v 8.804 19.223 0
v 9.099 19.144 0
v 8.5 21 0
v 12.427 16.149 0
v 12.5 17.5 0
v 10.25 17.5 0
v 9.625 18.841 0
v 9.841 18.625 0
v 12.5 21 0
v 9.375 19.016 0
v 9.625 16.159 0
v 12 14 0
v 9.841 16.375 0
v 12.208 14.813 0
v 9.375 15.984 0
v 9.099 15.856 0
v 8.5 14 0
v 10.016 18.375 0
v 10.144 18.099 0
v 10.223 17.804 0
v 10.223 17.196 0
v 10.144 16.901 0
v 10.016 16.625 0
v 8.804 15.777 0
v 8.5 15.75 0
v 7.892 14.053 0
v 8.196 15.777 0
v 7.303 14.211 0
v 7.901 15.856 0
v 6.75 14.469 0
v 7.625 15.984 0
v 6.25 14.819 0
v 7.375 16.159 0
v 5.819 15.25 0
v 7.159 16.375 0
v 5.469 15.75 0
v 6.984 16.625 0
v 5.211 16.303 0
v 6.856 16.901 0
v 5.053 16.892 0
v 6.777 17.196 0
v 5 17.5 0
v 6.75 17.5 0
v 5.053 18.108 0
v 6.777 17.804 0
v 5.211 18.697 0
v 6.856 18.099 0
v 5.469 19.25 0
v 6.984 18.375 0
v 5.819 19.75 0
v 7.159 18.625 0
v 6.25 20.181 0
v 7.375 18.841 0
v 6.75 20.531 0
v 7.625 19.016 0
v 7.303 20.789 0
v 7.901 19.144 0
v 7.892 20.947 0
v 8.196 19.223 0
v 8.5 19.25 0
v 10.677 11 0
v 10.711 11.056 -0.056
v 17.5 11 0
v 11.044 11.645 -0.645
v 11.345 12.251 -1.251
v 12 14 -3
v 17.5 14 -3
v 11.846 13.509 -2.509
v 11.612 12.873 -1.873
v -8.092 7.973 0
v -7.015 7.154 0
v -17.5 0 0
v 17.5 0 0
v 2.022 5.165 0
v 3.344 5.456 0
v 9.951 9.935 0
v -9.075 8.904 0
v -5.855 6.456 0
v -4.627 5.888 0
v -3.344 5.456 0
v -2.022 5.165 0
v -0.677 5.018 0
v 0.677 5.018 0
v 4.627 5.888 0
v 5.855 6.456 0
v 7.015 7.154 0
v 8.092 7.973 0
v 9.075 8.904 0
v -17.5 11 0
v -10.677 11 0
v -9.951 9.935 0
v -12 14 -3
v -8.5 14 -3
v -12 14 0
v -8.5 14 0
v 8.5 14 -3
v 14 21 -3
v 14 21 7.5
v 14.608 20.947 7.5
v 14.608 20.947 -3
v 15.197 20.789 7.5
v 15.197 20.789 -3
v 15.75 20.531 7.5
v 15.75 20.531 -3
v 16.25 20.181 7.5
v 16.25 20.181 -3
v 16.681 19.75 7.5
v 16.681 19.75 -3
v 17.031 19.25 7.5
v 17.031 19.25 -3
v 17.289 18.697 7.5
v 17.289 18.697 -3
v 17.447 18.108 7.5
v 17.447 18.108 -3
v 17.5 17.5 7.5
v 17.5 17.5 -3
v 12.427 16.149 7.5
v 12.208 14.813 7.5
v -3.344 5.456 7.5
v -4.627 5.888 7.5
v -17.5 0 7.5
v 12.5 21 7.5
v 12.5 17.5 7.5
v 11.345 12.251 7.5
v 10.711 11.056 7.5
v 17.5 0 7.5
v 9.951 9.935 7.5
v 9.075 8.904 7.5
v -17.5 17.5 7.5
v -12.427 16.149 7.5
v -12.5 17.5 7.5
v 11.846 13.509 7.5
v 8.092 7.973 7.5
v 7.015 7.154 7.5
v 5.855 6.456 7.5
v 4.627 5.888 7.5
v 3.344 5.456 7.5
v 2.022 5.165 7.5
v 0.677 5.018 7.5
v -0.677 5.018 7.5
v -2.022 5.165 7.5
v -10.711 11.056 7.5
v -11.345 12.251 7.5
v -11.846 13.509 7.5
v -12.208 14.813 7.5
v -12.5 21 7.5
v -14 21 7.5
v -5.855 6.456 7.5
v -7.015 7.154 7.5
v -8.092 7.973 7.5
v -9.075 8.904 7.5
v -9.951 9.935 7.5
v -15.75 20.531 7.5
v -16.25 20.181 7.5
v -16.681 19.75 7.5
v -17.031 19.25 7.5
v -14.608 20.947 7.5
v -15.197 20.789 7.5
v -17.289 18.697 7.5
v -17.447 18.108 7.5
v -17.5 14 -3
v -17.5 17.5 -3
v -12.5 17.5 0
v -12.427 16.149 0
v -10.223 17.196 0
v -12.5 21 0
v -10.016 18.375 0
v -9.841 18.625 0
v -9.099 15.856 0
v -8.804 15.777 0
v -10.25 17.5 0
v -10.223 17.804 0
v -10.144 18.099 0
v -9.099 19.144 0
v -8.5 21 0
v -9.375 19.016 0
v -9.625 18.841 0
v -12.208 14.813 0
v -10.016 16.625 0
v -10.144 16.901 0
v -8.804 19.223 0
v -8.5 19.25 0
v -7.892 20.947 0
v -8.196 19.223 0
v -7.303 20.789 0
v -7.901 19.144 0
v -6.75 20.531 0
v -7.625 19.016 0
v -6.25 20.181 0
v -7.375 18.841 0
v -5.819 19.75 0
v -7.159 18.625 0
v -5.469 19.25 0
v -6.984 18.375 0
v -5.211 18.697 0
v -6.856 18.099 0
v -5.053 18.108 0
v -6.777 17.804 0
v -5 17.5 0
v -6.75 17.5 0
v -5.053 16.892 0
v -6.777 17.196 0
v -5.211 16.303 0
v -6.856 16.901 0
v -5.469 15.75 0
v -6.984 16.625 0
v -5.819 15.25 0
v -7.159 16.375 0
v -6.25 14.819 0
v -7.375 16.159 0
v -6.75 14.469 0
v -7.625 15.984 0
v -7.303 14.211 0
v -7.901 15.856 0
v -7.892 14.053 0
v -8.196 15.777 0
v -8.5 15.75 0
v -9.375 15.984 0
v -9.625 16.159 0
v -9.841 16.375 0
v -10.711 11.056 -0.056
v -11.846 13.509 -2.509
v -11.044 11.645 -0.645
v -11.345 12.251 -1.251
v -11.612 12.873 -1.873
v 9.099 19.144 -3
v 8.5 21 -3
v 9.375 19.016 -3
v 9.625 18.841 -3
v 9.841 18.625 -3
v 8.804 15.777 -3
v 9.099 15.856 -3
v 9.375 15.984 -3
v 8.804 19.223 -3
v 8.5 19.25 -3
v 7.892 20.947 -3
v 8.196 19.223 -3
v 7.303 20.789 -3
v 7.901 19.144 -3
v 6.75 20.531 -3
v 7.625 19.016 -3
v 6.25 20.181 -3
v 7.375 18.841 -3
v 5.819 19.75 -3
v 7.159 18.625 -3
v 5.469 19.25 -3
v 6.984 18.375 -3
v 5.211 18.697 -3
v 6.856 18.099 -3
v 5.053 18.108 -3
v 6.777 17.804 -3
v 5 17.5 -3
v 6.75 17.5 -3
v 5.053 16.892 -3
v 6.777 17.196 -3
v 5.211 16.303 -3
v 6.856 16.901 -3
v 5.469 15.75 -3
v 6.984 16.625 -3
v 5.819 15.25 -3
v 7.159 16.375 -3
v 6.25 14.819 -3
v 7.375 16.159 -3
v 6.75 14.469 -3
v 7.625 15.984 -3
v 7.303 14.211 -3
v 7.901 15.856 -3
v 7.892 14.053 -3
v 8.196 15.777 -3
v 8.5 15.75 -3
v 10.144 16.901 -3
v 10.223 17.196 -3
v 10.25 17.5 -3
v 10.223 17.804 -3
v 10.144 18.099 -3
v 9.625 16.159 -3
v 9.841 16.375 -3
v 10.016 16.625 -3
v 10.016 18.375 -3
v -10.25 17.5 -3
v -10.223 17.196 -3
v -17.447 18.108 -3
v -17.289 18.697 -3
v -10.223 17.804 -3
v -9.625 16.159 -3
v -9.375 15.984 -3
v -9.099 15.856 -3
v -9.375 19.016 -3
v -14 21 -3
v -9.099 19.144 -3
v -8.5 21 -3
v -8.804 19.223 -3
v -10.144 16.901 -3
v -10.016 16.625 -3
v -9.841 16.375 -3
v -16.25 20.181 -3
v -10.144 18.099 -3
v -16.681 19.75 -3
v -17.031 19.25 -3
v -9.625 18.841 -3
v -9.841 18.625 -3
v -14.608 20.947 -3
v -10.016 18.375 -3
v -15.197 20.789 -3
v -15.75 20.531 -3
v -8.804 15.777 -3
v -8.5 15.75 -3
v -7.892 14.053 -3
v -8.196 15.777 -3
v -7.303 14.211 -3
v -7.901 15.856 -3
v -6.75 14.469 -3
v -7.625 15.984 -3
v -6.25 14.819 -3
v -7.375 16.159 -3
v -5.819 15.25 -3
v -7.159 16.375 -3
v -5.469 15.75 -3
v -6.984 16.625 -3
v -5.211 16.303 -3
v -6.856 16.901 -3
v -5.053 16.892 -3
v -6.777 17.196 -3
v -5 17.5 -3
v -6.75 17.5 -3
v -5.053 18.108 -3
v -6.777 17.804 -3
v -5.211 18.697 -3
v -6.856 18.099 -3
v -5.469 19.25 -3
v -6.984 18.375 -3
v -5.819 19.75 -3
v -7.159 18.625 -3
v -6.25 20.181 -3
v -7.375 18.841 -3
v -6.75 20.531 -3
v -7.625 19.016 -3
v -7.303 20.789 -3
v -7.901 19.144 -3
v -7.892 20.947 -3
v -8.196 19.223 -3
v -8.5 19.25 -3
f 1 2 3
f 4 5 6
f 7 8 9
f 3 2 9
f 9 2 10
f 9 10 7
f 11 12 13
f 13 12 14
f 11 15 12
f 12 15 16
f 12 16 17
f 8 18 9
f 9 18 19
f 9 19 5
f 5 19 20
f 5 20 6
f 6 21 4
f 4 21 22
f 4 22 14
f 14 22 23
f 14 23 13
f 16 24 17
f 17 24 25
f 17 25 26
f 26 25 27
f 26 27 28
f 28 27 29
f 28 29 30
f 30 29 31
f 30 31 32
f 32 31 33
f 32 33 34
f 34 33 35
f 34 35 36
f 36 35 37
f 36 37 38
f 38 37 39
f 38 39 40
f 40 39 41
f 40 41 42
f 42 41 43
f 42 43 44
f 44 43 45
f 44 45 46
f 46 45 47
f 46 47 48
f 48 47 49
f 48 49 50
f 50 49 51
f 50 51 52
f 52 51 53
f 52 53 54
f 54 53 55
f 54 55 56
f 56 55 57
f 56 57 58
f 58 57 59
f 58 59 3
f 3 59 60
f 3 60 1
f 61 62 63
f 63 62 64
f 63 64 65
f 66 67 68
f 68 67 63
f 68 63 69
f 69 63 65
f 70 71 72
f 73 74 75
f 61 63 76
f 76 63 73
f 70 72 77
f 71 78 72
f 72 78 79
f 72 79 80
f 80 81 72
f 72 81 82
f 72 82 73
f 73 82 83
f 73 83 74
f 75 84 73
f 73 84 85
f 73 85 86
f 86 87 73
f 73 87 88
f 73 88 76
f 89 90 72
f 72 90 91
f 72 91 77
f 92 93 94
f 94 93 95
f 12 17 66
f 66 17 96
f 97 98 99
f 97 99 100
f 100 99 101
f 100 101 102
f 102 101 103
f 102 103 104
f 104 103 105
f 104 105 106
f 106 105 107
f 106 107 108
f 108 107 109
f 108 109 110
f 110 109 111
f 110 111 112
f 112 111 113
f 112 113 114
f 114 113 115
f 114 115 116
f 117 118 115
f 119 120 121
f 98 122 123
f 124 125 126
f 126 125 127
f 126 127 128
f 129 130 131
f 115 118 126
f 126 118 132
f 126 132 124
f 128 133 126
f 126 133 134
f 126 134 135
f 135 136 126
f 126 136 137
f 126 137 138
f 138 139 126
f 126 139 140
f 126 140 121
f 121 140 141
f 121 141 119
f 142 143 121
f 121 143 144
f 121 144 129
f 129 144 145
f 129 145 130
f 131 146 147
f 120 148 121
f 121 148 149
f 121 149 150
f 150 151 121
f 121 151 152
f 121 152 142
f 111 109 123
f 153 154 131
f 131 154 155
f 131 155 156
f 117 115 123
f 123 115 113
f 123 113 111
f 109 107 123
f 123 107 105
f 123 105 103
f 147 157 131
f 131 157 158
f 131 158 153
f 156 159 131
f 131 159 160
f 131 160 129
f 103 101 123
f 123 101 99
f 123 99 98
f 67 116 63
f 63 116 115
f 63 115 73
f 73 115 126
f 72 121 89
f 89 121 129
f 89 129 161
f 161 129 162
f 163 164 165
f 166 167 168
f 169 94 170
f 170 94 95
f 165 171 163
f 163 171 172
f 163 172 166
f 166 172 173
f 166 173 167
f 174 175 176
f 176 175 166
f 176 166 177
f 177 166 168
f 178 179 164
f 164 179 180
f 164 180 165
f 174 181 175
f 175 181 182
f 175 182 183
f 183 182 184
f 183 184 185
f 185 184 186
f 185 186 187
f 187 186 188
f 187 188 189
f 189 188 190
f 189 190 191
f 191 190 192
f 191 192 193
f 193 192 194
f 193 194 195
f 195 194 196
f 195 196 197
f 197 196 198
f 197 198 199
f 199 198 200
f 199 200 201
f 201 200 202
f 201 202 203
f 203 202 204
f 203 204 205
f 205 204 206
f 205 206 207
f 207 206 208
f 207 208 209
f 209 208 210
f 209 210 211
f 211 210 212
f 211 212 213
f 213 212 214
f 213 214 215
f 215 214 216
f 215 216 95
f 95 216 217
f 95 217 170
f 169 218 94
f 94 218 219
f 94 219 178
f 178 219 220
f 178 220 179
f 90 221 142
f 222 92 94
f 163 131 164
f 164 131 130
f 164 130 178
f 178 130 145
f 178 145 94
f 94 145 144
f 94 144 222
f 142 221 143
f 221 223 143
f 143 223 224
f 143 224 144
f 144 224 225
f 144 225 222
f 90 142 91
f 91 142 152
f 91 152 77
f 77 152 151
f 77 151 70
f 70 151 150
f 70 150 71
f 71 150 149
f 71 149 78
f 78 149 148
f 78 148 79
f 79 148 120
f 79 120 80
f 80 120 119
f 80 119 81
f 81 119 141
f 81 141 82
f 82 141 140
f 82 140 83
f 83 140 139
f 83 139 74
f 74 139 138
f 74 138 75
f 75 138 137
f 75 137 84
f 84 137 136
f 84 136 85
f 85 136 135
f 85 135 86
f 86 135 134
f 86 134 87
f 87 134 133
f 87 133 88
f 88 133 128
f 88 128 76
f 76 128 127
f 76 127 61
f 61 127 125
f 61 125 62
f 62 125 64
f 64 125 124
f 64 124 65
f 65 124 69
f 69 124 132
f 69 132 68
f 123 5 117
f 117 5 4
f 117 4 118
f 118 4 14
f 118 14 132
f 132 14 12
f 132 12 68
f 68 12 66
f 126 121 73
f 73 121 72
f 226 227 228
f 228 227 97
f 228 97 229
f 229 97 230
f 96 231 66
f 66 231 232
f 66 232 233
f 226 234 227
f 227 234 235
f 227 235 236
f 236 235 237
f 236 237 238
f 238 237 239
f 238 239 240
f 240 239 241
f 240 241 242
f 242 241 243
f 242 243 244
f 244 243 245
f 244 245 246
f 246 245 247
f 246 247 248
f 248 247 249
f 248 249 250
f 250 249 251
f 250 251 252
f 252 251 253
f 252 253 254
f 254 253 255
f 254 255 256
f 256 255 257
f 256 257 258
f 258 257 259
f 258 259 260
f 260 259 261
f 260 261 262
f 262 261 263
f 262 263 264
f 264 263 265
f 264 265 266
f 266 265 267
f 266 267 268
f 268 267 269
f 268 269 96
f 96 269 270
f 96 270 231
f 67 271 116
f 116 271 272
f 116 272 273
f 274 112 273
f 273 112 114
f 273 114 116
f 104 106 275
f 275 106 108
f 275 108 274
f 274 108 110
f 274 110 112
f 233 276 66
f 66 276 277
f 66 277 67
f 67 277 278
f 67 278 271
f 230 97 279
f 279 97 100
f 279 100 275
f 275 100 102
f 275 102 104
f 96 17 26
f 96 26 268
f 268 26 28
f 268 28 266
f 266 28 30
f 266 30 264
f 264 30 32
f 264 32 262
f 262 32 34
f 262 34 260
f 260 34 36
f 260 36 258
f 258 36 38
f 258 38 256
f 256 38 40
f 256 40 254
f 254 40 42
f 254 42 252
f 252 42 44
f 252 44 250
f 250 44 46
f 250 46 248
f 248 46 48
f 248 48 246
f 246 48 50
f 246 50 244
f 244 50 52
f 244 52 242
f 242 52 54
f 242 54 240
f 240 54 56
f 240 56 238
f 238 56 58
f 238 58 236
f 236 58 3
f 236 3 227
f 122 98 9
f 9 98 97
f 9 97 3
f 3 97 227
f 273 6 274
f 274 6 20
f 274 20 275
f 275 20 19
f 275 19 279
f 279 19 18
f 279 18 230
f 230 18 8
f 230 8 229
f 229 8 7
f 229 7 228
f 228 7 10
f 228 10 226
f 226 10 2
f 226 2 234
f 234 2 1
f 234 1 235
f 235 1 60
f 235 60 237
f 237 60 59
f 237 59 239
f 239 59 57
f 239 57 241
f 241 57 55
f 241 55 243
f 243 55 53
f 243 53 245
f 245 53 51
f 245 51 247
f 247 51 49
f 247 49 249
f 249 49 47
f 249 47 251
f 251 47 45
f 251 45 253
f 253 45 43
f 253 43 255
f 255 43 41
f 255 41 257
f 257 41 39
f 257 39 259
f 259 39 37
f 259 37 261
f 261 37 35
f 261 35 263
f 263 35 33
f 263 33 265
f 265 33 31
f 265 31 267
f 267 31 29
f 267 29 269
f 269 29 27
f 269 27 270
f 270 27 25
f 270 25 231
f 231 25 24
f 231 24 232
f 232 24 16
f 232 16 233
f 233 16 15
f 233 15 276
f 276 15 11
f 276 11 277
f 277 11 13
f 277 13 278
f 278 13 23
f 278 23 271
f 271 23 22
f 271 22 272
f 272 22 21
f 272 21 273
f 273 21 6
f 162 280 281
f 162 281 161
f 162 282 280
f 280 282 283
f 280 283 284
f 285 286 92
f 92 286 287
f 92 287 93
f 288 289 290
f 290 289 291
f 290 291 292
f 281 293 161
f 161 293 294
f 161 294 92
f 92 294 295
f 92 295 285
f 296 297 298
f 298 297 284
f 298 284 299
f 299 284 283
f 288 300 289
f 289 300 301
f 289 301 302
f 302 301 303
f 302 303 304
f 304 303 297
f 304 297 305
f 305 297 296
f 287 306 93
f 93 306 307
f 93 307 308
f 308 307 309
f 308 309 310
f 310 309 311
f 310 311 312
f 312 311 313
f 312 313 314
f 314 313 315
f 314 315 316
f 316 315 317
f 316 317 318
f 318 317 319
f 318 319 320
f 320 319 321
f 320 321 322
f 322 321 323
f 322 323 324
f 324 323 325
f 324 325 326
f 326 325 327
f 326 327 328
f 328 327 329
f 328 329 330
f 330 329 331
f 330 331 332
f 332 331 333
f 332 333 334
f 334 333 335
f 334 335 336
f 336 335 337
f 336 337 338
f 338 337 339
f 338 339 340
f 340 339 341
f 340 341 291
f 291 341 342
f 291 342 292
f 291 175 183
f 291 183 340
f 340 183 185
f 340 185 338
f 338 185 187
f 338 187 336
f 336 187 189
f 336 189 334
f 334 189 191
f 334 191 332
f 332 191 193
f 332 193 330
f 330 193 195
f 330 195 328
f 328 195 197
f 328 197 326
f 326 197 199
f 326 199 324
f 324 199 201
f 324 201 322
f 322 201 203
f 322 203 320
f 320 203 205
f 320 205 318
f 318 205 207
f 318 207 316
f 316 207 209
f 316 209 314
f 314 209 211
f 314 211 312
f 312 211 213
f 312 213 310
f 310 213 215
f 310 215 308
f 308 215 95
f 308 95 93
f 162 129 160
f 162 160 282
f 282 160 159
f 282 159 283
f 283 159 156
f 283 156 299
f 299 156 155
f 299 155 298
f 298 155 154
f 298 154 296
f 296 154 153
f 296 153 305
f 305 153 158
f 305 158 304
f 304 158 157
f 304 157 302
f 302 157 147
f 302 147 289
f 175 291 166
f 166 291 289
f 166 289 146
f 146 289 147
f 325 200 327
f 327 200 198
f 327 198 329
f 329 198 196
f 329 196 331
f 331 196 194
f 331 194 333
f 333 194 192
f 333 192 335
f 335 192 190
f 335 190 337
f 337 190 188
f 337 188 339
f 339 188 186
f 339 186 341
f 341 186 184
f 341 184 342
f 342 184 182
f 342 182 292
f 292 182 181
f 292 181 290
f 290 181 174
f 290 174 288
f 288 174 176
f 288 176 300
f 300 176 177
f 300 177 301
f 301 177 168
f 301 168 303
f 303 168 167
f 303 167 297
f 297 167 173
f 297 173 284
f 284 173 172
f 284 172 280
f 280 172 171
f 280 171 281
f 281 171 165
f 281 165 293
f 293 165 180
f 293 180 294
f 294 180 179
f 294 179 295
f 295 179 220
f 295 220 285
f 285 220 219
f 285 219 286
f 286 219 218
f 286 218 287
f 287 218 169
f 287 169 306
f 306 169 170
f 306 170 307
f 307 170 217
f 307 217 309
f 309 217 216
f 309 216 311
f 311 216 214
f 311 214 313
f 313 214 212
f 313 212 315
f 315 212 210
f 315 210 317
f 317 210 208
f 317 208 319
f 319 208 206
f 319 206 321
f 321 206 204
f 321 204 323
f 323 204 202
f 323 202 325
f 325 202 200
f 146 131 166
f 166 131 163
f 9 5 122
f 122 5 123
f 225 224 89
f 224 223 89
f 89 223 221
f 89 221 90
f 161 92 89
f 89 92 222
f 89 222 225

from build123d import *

# Parameters (mm, degrees)
BOSS_EXTRUDE1_DEPTH = 7.5
SKETCH2_R           = 1.75
BOSS_EXTRUDE2_DEPTH = 3
SKETCH3_W           = 5
SKETCH3_H           = 7.5
BOSS_EXTRUDE3_DEPTH = 3.5
CUT_EXTRUDE1_DEPTH  = 29.346075566
BOSS_EXTRUDE4_DEPTH = 3
RIB1_REACH          = 43.5
SKETCH7_WALL_W      = 89.242640688
SKETCH7_WALL_H      = 5.25255129
BOSS_EXTRUDE5_DEPTH = 2
CUT_EXTRUDE2_DEPTH  = 29.346075566


with BuildPart() as part:
    # Sketch1 → Boss-Extrude1 (new body)
    with BuildSketch(Plane.XY):
        with BuildLine():
            Line((-17.5, 0), (17.5, 0))
            Line((17.5, 0), (17.5, 17.5))
            Line((17.5, 17.5), (12.5, 17.5))
            ThreePointArc((12.5, 17.5), (0, 5), (-12.5, 17.5))
            Line((-12.5, 17.5), (-17.5, 17.5))
            Line((-17.5, 17.5), (-17.5, 0))
        make_face()
    extrude(amount=BOSS_EXTRUDE1_DEPTH)

    # Sketch2 → Boss-Extrude2 (add)
    # profile 1 of 2: a face of its own
    with BuildSketch(Plane(origin=(0, 0, 0), x_dir=(-1, 0, 0), z_dir=(0, 0, -1))):
        with BuildLine():
            Line((-8.5, 14), (-14, 14))
            ThreePointArc((-14, 14), (-17.5, 17.5), (-14, 21))
            Line((-14, 21), (-8.5, 21))
            ThreePointArc((-8.5, 21), (-5, 17.5), (-8.5, 14))
        make_face()
        with Locations((-8.5, 17.5)):
            Circle(SKETCH2_R, mode=Mode.SUBTRACT)
    # profile 2 of 2: a face of its own
    with BuildSketch(Plane(origin=(0, 0, 0), x_dir=(-1, 0, 0), z_dir=(0, 0, -1))):
        with BuildLine():
            Line((8.5, 14), (14, 14))
            ThreePointArc((14, 14), (17.5, 17.5), (14, 21))
            Line((14, 21), (8.5, 21))
            ThreePointArc((8.5, 21), (5, 17.5), (8.5, 14))
        make_face()
        with Locations(Location((8.5, 17.5, 0), (0, 0, 180))):
            Circle(SKETCH2_R, mode=Mode.SUBTRACT)
    extrude(amount=BOSS_EXTRUDE2_DEPTH)

    # Sketch3 → Boss-Extrude3 (add)
    with BuildSketch(Plane(origin=(0, 17.5, 0), x_dir=(1, 0, 0), z_dir=(0, 1, 0))):
        with Locations((15, -3.75)):
            Rectangle(SKETCH3_W, SKETCH3_H)
        with Locations((-15, -3.75)):
            Rectangle(SKETCH3_W, SKETCH3_H)
    extrude(amount=BOSS_EXTRUDE3_DEPTH)

    # Sketch4 → Cut-Extrude1 (cut, through all)
    with BuildSketch(Plane(origin=(0, 0, 0), x_dir=(-1, 0, 0), z_dir=(0, 0, -1))):
        with BuildLine():
            Line((17.5, 21), (17.5, 17.5))
            ThreePointArc((17.5, 17.5), (16.474873734, 19.974873734), (14, 21))
            Line((14, 21), (17.5, 21))
        make_face()
    cut_extrude1 = extrude(amount=-CUT_EXTRUDE1_DEPTH, mode=Mode.SUBTRACT)

    # Sketch5 → Boss-Extrude4 (add)
    with BuildSketch(Plane(origin=(0, 0, 0), x_dir=(-1, 0, 0), z_dir=(0, 0, -1))):
        with BuildLine():
            Line((14, 14), (17.5, 14))
            Line((17.5, 14), (17.5, 17.5))
            ThreePointArc((17.5, 17.5), (16.474873734, 15.025126266), (14, 14))
        make_face()
    boss_extrude4 = extrude(amount=BOSS_EXTRUDE4_DEPTH)

    # Mirror1: Cut-Extrude1, Boss-Extrude4 across plane
    add(cut_extrude1.mirror(Plane(origin=(0, 0, 0), x_dir=(0, 0, 1), z_dir=(1, 0, 0))), mode=Mode.SUBTRACT)
    add(boss_extrude4.mirror(Plane(origin=(0, 0, 0), x_dir=(0, 0, 1), z_dir=(1, 0, 0))))

    # Sketch7 wall → Rib1 (add, up to next)
    with BuildSketch(Plane(origin=(17.5, 12.5, -1.5), x_dir=(0, -0.707106781187, 0.707106781187), z_dir=(0, -0.707106781187, -0.707106781187)), mode=Mode.PRIVATE) as rib1_sk1:
        with Locations((0, 2.626275645)):
            Rectangle(SKETCH7_WALL_W, SKETCH7_WALL_H)
    rib1_tool1 = extrude(rib1_sk1.sketch, amount=-RIB1_REACH, mode=Mode.PRIVATE) - part.part
    rib1 = rib1_tool1.solids().sort_by_distance((17.5, 12.5, -1.5))[0]
    add(rib1)

    # Mirror2: Rib1 across plane
    add(rib1.mirror(Plane(origin=(0, 0, 0), x_dir=(0, 0, 1), z_dir=(1, 0, 0))))

    # Sketch8 → Boss-Extrude5 (add)
    with BuildSketch(Plane(origin=(-12.24744871, 0, 0), x_dir=(0, 0, -1), z_dir=(1, 0, 0))):
        Polygon((3, 14), (0, 11), (0, 14), align=None)
    boss_extrude5 = extrude(amount=BOSS_EXTRUDE5_DEPTH)

    # Sketch9 → Cut-Extrude2 (cut, through all)
    with BuildSketch(Plane.XY):
        with BuildLine():
            Line((-10.24744871, 14), (-12, 14))
            ThreePointArc((-12, 14), (-11.437327901, 12.456436727), (-10.677078252, 11))
            Line((-10.677078252, 11), (-10.24744871, 11))
            Line((-10.24744871, 11), (-10.24744871, 14))
        make_face()
    cut_extrude2 = extrude(amount=-CUT_EXTRUDE2_DEPTH, mode=Mode.SUBTRACT)

    # Mirror3: Boss-Extrude5, Cut-Extrude2 across plane
    add(boss_extrude5.mirror(Plane(origin=(0, 0, 0), x_dir=(0, 0, 1), z_dir=(1, 0, 0))))
    add(cut_extrude2.mirror(Plane(origin=(0, 0, 0), x_dir=(0, 0, 1), z_dir=(1, 0, 0))), mode=Mode.SUBTRACT)


solid = part.part
